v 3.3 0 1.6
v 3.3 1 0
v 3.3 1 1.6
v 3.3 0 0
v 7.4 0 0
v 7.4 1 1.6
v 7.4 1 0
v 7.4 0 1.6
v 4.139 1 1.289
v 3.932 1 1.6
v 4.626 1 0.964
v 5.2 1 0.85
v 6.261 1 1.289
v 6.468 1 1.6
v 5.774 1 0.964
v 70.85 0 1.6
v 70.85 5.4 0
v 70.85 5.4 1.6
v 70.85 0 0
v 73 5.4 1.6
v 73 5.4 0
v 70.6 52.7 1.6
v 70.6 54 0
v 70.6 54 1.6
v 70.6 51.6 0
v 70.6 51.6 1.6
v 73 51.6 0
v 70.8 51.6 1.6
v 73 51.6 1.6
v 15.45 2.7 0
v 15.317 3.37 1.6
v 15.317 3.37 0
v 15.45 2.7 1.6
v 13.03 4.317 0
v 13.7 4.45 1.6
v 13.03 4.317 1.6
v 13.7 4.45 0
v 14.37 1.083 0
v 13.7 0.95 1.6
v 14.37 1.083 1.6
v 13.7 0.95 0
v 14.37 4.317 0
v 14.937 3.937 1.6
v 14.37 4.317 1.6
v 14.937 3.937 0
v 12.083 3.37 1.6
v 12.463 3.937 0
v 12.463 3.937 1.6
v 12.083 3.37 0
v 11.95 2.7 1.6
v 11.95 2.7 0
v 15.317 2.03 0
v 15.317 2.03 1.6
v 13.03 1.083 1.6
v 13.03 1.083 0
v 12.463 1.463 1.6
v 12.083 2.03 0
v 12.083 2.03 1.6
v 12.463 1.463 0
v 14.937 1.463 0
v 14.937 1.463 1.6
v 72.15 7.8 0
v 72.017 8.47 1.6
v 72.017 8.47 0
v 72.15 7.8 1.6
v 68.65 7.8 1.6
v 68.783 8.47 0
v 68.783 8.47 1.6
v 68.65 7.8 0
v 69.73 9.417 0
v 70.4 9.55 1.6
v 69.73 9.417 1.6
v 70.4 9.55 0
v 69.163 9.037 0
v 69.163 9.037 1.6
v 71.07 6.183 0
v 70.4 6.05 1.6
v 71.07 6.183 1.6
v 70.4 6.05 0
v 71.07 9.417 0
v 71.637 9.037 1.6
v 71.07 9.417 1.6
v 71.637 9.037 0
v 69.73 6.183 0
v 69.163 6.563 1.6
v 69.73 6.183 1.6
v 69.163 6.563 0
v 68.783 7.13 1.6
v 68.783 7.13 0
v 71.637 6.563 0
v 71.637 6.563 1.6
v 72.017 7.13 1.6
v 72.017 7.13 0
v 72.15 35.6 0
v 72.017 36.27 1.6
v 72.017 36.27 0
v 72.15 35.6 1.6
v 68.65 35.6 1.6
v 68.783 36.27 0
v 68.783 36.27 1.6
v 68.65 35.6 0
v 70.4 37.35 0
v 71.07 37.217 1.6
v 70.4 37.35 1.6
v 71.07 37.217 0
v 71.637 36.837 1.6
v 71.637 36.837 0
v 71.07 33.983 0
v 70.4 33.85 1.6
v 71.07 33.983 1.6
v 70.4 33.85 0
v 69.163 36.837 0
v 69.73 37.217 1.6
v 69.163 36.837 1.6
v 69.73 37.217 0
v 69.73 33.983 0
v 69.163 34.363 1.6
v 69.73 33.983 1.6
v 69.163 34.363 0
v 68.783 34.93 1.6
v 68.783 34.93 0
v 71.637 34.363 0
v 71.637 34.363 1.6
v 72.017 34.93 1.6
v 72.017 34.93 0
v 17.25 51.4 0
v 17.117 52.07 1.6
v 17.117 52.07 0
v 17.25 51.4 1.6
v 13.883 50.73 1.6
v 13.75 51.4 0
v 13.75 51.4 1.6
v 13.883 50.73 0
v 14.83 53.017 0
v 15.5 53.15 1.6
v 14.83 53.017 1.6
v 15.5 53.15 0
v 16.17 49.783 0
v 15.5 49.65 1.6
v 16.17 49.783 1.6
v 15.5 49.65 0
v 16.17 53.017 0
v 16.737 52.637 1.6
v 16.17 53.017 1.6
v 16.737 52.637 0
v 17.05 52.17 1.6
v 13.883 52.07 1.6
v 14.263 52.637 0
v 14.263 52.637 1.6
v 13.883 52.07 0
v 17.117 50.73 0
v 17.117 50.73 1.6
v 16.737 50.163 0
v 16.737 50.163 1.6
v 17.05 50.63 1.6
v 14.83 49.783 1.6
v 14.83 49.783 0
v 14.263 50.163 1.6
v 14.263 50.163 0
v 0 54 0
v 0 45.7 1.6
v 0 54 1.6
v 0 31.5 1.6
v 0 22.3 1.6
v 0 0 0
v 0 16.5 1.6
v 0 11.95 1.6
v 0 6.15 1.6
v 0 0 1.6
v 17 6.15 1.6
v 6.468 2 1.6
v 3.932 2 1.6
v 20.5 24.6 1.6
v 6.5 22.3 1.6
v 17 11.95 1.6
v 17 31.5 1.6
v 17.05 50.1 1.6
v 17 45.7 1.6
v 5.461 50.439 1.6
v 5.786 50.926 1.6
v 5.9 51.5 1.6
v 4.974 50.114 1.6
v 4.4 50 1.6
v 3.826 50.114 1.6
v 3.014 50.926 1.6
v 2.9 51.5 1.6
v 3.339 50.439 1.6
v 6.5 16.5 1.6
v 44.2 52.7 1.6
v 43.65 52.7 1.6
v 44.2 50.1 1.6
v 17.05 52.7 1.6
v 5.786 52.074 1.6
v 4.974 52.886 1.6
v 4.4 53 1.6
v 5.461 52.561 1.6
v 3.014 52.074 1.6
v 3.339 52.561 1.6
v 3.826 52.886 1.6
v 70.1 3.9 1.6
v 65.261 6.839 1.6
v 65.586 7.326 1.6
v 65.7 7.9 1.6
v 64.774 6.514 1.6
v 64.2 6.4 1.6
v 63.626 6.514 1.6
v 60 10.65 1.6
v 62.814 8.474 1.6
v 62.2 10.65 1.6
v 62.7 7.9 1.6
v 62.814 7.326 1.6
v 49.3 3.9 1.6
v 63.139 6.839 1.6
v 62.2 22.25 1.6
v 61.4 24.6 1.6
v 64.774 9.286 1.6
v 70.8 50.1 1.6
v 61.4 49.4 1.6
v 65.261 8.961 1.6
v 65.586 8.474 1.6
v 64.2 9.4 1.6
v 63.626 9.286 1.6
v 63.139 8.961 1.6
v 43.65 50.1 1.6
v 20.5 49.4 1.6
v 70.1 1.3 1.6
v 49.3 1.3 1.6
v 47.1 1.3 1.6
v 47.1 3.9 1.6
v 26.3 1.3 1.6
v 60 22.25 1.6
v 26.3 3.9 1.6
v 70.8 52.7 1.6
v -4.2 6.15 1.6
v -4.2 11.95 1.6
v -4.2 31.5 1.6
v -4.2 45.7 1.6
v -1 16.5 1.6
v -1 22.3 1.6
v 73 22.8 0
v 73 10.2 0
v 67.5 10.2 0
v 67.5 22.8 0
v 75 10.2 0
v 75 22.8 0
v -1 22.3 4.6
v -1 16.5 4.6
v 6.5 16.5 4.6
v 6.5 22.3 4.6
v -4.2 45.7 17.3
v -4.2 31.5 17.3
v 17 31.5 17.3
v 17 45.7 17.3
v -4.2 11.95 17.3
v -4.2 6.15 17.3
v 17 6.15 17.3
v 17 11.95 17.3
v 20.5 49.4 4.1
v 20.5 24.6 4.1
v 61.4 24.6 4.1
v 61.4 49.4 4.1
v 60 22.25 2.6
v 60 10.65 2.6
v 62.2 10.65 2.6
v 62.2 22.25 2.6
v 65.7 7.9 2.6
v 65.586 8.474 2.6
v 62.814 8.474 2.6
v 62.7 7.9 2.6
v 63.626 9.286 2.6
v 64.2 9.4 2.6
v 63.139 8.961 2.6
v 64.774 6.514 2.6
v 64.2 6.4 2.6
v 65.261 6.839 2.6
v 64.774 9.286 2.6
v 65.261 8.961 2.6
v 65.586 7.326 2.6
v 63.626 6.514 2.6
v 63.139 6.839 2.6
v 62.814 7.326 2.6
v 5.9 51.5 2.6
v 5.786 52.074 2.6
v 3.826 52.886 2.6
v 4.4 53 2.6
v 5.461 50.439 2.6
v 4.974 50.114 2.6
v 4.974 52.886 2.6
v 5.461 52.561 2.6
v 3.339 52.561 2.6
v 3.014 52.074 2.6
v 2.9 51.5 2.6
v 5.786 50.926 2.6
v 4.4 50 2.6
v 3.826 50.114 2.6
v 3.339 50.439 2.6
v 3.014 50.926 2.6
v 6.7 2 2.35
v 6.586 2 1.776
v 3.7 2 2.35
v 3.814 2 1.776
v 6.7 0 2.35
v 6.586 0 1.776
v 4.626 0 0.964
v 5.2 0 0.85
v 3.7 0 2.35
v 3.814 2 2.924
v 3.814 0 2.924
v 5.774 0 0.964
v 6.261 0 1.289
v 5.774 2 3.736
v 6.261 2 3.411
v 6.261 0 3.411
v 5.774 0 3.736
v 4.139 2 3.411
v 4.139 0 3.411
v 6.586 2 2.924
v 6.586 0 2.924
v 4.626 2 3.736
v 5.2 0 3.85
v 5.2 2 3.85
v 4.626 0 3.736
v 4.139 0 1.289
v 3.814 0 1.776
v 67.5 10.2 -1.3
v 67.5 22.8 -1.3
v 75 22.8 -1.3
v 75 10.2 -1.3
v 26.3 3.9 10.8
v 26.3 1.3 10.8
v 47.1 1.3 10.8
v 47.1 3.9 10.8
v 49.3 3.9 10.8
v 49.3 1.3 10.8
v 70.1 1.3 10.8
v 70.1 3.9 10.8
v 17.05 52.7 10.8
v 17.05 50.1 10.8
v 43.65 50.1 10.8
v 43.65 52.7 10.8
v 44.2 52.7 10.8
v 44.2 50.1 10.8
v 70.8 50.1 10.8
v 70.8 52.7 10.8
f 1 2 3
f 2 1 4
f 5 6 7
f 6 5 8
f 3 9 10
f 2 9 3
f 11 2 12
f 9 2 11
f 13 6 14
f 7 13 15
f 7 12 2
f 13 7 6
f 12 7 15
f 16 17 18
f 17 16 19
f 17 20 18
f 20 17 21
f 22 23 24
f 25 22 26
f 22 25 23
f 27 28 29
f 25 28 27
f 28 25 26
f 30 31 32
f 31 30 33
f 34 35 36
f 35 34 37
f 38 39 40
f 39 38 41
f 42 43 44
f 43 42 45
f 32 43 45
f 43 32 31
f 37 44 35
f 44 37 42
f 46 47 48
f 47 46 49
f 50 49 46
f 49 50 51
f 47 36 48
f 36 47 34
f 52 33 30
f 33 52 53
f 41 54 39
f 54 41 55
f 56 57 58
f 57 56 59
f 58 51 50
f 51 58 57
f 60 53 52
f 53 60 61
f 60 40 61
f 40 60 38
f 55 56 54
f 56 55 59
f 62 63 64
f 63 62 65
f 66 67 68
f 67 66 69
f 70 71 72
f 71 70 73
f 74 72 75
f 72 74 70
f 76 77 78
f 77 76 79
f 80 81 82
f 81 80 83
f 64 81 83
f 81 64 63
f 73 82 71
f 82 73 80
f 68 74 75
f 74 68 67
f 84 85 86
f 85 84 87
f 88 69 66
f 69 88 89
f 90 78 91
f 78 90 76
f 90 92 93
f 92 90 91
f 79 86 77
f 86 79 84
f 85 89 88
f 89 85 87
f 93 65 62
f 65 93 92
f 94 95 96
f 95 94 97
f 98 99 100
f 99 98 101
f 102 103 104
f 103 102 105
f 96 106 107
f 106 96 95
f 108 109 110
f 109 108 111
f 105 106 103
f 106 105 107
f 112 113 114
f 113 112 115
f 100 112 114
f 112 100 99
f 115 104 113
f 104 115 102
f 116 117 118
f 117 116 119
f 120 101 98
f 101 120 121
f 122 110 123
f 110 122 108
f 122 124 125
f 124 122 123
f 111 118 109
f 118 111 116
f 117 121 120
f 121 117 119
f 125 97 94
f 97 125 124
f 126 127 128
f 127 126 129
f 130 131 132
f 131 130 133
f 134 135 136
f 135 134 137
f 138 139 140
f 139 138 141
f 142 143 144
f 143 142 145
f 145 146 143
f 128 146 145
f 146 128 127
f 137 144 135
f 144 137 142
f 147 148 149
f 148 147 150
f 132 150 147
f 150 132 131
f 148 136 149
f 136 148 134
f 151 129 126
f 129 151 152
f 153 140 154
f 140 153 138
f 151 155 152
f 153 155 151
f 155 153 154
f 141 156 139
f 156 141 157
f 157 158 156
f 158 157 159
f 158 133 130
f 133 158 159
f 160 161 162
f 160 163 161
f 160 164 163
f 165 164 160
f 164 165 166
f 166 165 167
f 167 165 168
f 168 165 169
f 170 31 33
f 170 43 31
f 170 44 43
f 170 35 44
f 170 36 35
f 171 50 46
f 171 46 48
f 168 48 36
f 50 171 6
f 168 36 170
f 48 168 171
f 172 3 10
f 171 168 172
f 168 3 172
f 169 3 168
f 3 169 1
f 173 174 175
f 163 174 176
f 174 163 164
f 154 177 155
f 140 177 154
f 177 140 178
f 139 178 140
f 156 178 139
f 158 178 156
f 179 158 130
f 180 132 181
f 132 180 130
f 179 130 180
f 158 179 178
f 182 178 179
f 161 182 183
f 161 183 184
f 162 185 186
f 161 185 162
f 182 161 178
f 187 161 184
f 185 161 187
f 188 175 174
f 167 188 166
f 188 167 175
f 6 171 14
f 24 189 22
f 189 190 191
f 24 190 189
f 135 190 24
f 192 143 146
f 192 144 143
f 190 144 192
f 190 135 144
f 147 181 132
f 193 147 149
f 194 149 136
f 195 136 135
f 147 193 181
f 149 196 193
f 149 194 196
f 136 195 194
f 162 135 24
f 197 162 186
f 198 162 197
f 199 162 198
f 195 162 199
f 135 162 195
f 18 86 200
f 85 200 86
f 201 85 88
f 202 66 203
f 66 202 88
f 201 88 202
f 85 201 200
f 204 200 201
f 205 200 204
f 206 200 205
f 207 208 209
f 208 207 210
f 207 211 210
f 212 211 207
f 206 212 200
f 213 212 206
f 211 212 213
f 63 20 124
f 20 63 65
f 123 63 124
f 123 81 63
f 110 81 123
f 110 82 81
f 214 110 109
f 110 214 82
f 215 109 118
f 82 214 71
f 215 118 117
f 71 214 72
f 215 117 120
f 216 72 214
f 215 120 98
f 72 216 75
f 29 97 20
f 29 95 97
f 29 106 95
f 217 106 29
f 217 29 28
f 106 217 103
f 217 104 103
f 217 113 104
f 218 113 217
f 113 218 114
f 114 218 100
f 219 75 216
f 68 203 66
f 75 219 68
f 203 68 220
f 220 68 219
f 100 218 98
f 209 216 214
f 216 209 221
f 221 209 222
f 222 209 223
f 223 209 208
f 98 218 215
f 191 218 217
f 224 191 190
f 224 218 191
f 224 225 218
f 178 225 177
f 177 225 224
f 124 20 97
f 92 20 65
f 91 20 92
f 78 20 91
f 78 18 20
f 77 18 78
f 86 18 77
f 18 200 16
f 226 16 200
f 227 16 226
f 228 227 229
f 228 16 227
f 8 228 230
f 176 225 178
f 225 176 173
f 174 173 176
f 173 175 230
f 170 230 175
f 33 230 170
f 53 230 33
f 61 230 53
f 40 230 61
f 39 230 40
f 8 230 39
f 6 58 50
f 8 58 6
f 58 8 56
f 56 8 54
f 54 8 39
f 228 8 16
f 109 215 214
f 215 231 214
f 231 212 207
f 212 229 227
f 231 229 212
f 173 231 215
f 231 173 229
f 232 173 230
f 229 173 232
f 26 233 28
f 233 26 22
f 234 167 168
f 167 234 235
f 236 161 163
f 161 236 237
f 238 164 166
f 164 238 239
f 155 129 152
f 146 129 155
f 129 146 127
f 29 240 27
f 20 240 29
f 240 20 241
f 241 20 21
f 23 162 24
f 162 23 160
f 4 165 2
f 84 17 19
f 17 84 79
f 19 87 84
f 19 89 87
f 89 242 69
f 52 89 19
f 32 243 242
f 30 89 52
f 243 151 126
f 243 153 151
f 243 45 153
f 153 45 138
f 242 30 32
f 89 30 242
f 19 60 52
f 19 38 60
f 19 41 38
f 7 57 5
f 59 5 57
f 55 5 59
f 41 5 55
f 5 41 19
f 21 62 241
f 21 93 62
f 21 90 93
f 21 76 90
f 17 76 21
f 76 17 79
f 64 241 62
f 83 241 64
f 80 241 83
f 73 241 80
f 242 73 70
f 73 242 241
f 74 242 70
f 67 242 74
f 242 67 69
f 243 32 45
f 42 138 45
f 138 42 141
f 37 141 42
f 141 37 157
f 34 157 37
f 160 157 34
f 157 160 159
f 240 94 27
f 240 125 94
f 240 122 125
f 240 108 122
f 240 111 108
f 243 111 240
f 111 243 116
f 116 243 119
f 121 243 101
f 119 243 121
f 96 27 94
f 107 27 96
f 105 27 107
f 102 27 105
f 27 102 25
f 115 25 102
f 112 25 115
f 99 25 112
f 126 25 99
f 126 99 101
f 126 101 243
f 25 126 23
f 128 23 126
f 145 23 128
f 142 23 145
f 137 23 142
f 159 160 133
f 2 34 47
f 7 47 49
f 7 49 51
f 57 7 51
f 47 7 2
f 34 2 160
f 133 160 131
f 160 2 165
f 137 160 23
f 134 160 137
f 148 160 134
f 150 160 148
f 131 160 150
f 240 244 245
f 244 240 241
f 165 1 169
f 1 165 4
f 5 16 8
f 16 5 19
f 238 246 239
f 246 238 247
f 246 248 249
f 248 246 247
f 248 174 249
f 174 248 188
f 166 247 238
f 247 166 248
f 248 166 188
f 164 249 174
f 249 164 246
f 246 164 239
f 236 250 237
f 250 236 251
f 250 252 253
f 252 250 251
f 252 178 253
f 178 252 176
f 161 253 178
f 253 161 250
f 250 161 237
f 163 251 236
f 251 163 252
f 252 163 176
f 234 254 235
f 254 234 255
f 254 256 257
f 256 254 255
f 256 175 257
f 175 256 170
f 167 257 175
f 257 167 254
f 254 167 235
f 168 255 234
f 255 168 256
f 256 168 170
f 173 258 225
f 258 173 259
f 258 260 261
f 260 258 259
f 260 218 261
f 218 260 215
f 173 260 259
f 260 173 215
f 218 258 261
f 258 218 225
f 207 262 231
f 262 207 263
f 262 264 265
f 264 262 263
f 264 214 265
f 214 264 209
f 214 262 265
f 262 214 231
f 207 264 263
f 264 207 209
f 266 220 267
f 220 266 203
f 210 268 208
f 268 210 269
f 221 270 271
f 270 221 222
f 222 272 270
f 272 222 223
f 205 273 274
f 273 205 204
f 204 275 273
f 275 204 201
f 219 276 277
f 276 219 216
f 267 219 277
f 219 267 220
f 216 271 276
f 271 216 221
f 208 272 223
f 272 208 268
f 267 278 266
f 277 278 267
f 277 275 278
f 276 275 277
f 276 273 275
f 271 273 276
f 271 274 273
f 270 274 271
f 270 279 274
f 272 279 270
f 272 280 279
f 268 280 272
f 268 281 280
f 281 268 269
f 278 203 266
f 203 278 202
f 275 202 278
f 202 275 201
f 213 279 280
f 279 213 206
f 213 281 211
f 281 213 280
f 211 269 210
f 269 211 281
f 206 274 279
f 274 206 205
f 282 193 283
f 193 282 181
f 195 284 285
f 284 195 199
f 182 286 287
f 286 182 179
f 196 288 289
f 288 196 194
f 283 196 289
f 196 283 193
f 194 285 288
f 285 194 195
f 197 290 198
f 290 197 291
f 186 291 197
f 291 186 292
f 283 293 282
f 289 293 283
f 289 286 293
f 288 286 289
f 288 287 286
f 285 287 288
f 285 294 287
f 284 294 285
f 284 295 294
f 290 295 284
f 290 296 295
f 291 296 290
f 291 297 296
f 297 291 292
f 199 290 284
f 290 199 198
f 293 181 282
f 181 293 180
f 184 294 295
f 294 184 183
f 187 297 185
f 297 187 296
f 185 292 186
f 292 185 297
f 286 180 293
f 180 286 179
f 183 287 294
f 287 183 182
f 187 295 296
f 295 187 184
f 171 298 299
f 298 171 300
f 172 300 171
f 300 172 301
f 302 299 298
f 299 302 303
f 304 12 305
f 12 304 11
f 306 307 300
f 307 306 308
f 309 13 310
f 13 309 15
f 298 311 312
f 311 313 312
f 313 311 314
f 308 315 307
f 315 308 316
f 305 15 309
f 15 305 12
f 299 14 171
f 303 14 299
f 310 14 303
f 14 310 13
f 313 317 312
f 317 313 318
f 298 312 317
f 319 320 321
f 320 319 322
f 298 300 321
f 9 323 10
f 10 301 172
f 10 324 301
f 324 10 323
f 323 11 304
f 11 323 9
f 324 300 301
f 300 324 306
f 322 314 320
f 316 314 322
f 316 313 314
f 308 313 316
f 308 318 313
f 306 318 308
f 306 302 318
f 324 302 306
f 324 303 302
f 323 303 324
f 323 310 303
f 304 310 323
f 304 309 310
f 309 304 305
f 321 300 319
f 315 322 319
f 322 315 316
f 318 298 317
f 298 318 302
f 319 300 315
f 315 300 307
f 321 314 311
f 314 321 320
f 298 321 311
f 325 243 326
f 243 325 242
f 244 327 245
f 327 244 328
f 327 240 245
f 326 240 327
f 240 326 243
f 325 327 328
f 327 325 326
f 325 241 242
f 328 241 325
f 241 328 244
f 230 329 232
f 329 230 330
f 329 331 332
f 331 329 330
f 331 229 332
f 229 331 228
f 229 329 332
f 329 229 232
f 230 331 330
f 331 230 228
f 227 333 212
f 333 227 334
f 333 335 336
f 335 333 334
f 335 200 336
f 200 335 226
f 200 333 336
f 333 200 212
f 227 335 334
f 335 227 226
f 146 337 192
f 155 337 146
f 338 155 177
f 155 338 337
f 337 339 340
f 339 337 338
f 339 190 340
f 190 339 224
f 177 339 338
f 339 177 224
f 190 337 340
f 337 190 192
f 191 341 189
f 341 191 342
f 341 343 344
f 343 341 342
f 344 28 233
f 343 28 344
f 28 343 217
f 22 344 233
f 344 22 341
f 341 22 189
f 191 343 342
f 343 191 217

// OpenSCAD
// Arduino Yun Mini 3D model for planning

$fn = 16;

length = 73;
width = 54;
height = 1.6;

module board() {
    difference() {
        cube([length, width, height]);
        union() {
            translate([3.3, -1,  -1]) cube([7.4-3.3, 1+1, 3]);
            translate([length - 2.15, -1,  -1]) cube([3, 1+5.4, 3]);
            translate([length - 2.4, width - 2.4,  -1]) cube([3, 3, 3]);
            hole(13.7, 2.7);
            hole(length - 2.6, 7.8);
            hole(length - 2.6, 35.6);
            hole(15.5, width - 2.6);
        }
    }
}

module usb_power() {
    translate([-1, 16.5, height]) cube([7.5, 5.8, 3]);
}

module ethernet() {
    translate([-4.2, 31.5, height]) cube([21.2, 14.2, 15.7]);
}

module usb() {
    translate([-4.2, 6.15, height]) cube([21.2, 5.8, 15.7]);
}

module header(x = 0, y = 0, z = 0, length = 10) {
    translate([x, y, z]) cube([length, 2.6, 9.2]);
}

module shield() {
    translate([20.5, 24.6, height]) cube([40.9, 24.8, 2.5]);
}


module leds() {
    translate([length - 1.4 - 11.6, 10.65, height]) cube([2.2, 11.6, 1]);
}

module button(x = 0, y = 0) {
    translate([x, y, height]) cylinder(r = 3/2, h = 1);    
}

module side_button() {
    translate([5.2, 0, height + 3/4]) rotate([-90, 0, 0]) {
        cylinder(r = 3/2, h = 2);    
    }
}

module hole(x = 0, y = 0) {
    translate([x, y, -1]) cylinder(h = 3 + height, r = 3.5/2);
}

module micro_sd() {
    translate([length + 2 - 7.5, 10.2, -1.3]) cube([7.5, 12.6, 1.3]);
}

module arduino_yun() {
    color("green") board();
    color("magenta") usb_power();
    color("yellow") ethernet();
    color("brown") usb();
    color("silver") shield();
    color("red") leds();
    color("blue") button(length - 8.8, 7.9);
    color("blue") button(4.4, width - 2.5);
    color("violet") side_button();
    color("lime") micro_sd();
    color("black") header(x = 26.3, y = 1.3, z = height, length = 20.8);
    color("black") header(x = 49.3, y = 1.3, z = height, length = 20.8);
    color("black") header(x = 17.05, y = width - 1.3 - 2.6, z = height, length = 26.6);
    color("black") header(x = 44.2, y = width - 1.3 - 2.6, z = height, length = 26.6);
}

arduino_yun();
